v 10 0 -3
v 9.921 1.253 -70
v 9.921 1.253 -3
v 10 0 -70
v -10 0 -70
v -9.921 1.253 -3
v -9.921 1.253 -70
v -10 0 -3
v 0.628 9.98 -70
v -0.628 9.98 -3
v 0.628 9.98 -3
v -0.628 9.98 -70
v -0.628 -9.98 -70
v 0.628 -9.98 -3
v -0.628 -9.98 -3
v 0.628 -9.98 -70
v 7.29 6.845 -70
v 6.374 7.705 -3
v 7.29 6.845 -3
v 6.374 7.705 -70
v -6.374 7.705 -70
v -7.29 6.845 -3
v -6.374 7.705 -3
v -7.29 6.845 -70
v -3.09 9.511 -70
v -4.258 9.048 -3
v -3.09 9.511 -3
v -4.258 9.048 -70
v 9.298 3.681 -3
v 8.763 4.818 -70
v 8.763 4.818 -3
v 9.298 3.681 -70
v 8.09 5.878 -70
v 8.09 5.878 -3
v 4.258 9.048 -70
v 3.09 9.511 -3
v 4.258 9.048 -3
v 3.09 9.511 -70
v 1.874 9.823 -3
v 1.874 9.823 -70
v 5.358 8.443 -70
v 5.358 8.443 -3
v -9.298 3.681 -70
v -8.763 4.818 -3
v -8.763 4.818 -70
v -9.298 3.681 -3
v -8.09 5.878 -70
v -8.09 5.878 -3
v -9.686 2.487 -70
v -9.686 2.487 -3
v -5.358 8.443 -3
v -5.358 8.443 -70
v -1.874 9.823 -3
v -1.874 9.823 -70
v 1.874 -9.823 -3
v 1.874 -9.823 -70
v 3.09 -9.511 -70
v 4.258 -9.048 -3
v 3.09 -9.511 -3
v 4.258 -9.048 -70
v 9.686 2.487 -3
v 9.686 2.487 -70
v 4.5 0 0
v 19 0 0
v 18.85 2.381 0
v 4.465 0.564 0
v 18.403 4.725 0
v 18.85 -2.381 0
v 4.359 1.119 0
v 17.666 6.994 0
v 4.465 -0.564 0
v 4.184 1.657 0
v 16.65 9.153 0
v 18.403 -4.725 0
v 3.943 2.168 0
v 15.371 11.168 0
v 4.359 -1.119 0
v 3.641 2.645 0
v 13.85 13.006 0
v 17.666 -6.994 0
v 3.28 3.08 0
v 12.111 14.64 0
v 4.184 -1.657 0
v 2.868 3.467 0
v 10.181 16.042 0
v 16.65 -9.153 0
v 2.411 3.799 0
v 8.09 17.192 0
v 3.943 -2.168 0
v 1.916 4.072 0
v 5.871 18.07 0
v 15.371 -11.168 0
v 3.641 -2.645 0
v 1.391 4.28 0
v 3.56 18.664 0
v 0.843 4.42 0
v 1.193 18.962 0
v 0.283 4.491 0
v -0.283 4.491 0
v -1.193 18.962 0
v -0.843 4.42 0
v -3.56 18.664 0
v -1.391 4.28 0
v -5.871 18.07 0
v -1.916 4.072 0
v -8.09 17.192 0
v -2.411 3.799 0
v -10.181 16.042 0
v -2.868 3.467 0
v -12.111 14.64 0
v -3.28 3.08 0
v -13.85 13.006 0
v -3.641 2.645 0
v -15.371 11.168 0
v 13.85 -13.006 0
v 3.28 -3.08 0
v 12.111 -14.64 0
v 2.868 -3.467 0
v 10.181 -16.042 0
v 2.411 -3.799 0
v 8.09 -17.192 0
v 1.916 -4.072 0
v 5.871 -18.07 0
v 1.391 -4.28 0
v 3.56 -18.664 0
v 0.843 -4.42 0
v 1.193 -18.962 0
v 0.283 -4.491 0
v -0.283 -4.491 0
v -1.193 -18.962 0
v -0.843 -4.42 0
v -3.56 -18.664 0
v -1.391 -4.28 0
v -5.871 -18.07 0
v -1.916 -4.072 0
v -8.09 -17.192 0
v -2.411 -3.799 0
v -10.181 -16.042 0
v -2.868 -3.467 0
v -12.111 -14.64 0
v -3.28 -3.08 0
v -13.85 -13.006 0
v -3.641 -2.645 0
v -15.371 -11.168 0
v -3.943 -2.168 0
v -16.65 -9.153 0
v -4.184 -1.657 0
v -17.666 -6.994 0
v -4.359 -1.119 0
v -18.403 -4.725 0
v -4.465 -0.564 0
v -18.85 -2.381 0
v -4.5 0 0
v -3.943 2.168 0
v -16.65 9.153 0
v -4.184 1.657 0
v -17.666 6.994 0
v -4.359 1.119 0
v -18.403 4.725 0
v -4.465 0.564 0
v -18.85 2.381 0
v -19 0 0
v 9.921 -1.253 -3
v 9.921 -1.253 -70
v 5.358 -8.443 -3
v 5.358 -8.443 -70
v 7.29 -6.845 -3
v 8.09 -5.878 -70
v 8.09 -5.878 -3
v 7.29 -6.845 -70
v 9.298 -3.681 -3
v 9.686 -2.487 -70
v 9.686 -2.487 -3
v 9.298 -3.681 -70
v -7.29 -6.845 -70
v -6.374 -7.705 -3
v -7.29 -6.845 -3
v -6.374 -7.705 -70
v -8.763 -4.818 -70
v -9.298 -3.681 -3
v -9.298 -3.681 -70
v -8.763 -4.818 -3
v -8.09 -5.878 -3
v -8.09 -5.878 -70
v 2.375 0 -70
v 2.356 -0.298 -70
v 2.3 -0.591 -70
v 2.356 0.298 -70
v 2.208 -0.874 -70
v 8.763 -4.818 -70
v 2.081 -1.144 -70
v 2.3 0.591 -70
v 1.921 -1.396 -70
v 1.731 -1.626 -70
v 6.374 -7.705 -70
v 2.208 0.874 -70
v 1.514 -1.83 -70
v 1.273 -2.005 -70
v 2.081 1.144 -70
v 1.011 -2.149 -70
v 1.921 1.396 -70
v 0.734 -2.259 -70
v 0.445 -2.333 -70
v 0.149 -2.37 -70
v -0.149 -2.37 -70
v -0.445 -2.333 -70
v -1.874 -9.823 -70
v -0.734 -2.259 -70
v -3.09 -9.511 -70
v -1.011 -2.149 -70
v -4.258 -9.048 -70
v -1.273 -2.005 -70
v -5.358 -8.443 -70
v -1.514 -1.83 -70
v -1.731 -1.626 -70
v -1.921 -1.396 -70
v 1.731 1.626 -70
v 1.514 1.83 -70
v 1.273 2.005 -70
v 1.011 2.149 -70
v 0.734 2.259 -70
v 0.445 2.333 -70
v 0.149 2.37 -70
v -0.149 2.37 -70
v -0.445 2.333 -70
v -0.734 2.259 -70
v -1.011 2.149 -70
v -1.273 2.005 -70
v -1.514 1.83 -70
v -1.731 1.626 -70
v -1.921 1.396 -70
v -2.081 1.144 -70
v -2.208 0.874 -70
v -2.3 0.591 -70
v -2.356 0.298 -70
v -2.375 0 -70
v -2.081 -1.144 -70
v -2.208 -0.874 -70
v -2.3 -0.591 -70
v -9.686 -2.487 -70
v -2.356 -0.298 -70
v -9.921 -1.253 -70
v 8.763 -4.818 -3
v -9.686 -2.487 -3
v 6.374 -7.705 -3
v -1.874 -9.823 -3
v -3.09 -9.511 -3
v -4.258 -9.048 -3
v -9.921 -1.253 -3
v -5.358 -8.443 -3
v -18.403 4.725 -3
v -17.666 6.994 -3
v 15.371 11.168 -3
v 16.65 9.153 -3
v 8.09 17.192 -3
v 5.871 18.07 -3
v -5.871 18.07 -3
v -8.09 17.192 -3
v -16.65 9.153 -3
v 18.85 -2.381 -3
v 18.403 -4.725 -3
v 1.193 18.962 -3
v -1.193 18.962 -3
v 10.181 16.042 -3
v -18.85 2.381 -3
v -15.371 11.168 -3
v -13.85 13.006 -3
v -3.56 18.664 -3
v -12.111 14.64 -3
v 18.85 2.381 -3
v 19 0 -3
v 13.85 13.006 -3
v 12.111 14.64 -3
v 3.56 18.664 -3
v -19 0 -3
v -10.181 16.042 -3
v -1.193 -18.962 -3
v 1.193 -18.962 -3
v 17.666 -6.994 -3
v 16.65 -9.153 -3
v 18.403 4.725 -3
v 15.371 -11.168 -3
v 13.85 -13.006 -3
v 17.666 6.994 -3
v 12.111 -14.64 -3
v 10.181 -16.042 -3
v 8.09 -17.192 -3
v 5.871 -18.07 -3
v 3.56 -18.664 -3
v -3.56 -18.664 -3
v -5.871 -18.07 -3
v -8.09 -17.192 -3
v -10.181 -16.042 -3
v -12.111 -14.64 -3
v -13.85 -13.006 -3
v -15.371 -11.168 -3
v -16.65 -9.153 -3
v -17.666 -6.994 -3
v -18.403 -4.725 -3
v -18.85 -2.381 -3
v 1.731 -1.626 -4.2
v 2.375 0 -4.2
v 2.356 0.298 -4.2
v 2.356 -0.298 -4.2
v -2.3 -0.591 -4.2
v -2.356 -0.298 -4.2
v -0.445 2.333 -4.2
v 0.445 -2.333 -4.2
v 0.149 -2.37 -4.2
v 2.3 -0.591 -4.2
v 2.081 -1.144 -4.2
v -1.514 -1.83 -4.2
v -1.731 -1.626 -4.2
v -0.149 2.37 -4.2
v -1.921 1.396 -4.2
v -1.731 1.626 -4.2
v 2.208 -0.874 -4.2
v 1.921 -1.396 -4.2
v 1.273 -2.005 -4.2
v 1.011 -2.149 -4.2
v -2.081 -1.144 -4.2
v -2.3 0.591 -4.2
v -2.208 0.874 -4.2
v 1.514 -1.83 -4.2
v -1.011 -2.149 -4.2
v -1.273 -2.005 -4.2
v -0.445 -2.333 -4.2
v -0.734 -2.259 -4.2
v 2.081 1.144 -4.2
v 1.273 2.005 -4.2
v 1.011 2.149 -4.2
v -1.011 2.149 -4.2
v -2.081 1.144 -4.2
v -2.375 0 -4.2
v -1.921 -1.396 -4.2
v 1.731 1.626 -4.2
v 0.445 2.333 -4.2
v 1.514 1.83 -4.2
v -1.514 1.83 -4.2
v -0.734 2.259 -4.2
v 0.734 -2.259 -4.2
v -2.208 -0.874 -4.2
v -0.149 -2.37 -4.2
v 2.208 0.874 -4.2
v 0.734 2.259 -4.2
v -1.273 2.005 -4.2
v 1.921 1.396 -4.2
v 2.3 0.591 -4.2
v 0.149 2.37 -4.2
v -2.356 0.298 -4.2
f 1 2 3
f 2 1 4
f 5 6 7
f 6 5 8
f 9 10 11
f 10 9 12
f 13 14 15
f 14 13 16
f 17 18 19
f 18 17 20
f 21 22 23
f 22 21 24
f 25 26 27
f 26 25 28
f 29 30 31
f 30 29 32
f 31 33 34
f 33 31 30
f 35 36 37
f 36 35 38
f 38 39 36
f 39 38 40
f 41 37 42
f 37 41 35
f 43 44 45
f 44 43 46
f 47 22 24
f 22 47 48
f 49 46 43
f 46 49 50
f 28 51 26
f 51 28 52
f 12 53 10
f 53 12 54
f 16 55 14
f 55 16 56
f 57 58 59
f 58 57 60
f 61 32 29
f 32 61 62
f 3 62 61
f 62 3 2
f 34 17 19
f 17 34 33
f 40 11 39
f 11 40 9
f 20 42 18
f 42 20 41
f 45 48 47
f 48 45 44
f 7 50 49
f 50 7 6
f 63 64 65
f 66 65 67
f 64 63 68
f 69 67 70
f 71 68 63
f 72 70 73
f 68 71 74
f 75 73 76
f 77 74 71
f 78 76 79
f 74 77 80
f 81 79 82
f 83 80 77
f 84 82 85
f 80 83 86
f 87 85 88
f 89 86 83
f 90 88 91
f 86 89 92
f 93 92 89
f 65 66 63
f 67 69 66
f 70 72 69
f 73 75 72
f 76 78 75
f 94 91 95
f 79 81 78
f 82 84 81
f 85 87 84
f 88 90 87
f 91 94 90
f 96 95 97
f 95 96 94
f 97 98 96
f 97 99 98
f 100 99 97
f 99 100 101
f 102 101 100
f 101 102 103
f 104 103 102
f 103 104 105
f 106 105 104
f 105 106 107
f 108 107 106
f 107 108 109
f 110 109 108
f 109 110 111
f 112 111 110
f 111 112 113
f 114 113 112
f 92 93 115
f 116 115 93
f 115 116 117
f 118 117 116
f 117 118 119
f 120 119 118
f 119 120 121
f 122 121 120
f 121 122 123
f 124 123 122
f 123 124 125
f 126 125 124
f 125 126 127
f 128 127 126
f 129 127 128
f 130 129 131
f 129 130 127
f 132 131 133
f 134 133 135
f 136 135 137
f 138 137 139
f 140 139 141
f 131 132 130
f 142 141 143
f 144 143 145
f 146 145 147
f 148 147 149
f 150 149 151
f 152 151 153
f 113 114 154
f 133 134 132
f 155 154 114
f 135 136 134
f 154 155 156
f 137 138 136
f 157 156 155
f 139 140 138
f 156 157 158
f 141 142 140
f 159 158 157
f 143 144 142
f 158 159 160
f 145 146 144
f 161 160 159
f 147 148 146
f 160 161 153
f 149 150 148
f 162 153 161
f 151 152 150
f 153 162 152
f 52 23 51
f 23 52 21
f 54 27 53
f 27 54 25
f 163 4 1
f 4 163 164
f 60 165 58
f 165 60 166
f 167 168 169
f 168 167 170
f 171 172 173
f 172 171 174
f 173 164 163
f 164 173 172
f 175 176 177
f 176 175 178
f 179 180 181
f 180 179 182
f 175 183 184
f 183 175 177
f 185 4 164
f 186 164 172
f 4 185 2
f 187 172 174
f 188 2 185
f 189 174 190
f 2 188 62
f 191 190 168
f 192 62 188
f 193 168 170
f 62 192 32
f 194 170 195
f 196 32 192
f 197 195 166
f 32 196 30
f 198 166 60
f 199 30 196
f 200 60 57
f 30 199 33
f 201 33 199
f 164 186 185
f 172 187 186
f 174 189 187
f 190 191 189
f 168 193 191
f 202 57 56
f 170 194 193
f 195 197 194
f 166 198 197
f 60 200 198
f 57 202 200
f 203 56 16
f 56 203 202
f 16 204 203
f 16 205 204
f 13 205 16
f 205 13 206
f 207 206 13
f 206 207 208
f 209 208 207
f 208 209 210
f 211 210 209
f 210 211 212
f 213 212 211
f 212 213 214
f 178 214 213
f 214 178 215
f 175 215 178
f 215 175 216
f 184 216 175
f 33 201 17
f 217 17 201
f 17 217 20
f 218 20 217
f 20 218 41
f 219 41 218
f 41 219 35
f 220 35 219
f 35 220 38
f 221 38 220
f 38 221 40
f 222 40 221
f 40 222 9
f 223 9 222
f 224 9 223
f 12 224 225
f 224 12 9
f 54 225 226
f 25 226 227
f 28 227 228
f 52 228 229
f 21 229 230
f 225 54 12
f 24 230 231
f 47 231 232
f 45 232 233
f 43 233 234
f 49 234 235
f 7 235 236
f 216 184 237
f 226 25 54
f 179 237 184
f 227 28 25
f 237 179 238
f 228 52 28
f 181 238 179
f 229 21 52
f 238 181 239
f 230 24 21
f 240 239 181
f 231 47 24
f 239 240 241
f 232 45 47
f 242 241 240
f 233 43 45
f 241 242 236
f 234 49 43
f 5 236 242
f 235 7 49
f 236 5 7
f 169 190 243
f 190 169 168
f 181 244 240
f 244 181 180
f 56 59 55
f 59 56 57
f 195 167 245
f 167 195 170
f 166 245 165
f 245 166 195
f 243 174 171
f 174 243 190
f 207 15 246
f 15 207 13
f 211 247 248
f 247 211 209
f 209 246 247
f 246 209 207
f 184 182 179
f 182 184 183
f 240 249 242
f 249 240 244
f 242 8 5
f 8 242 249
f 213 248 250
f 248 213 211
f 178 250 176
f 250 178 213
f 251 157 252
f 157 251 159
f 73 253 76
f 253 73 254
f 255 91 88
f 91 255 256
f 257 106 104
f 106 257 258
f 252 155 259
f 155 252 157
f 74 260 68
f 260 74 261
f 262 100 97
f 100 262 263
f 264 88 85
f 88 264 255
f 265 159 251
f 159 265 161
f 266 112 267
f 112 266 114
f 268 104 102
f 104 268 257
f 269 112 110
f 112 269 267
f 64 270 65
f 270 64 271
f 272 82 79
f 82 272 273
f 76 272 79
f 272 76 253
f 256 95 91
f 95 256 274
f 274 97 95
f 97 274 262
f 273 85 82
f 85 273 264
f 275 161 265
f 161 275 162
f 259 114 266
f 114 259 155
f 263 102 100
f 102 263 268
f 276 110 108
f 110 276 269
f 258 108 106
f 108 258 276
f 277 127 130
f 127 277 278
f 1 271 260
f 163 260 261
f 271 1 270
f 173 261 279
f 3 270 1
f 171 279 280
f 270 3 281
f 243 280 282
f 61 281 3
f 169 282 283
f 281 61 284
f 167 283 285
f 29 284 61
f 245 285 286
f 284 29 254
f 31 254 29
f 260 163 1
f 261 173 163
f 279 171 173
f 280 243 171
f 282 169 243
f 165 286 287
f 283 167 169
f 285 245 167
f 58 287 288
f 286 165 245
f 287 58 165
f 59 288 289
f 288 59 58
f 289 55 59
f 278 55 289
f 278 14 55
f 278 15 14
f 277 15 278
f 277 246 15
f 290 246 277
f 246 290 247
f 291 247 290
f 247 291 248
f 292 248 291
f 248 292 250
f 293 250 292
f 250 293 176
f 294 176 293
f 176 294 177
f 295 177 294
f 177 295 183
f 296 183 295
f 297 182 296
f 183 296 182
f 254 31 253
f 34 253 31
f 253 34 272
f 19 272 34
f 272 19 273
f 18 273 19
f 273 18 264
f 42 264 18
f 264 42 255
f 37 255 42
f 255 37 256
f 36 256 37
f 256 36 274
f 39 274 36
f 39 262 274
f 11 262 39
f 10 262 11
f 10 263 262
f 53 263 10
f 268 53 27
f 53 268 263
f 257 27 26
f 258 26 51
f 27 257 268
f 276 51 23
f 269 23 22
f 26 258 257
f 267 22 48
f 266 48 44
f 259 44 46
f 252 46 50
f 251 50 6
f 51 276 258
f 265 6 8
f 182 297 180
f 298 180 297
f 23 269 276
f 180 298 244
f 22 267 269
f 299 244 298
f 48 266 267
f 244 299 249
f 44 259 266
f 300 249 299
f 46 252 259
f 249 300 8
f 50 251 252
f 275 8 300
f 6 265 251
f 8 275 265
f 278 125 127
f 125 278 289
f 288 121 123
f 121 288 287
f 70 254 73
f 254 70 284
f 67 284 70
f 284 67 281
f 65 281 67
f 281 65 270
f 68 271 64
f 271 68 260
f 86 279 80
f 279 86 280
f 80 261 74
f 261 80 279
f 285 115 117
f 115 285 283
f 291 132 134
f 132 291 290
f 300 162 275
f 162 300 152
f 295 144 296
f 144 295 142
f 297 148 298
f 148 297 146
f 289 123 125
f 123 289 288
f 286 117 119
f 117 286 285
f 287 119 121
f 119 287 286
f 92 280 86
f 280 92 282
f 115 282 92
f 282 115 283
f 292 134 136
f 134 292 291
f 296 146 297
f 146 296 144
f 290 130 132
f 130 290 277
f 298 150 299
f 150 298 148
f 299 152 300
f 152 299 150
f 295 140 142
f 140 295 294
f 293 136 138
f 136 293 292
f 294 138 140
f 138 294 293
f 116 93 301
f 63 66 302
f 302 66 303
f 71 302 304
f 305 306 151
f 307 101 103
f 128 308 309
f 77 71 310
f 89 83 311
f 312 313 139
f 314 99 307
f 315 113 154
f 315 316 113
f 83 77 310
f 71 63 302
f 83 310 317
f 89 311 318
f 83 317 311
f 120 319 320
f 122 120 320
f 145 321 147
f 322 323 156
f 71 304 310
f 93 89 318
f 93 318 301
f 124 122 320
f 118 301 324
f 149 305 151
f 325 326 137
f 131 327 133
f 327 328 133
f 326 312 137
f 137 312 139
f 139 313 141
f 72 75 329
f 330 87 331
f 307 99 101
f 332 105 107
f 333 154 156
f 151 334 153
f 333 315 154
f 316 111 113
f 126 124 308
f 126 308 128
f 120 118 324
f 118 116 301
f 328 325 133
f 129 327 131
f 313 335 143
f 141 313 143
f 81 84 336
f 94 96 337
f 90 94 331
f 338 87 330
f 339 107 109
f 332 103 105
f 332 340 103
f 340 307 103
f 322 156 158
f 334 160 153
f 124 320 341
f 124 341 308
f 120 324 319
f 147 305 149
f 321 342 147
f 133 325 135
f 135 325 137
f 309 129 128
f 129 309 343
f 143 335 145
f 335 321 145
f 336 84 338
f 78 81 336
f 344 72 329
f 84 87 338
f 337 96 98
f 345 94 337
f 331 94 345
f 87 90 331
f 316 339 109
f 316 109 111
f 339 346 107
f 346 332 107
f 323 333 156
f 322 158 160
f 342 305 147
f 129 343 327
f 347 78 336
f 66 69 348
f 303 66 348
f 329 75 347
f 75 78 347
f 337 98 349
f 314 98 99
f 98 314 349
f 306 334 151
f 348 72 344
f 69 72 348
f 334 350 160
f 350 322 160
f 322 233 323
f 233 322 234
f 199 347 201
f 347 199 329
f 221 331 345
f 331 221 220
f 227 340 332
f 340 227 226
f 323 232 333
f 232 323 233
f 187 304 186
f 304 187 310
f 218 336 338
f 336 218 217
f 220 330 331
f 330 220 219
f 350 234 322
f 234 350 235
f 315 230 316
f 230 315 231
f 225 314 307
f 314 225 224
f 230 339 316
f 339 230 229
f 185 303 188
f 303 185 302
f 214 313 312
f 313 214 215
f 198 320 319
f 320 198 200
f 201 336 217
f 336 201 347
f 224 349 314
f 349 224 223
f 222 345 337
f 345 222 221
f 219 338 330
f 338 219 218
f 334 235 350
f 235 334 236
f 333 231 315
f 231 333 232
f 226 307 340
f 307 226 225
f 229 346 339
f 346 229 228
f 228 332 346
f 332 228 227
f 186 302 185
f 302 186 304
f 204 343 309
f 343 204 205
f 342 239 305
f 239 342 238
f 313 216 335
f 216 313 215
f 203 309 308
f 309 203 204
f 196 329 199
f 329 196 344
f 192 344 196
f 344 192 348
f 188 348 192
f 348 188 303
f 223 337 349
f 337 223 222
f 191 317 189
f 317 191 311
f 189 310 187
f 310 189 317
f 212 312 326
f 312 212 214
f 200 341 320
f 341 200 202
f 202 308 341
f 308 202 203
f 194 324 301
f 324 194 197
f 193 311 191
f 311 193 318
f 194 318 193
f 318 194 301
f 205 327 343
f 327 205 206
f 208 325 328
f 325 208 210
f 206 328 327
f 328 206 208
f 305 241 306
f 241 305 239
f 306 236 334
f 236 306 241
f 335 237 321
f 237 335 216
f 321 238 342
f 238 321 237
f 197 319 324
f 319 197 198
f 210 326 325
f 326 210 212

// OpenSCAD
$fn = 50;


difference() {
	union() {
		translate(v = [0, 0, -70.0000000000]) {
			cylinder(h = 70, r = 10.0000000000);
		}
		translate(v = [0, 0, -3.0000000000]) {
			cylinder(h = 3, r = 19.0000000000);
		}
	}
	union() {
		translate(v = [0, 0, 0]) {
			rotate(a = [0, 0, 0]) {
				difference() {
					union() {
						#translate(v = [0, 0, -70.0000000000]) {
							cylinder(h = 70, r = 2.2500000000);
						}
						#translate(v = [0, 0, -4.2000000000]) {
							cylinder(h = 4.2000000000, r = 10.0000000000, r1 = 2.3750000000, r2 = 4.5000000000);
						}
						#translate(v = [0, 0, -70.0000000000]) {
							cylinder(h = 70, r = 2.3750000000);
						}
						#translate(v = [0, 0, -70.0000000000]) {
							cylinder(h = 70, r = 2.2500000000);
						}
					}
					union();
				}
			}
		}
	}
}
